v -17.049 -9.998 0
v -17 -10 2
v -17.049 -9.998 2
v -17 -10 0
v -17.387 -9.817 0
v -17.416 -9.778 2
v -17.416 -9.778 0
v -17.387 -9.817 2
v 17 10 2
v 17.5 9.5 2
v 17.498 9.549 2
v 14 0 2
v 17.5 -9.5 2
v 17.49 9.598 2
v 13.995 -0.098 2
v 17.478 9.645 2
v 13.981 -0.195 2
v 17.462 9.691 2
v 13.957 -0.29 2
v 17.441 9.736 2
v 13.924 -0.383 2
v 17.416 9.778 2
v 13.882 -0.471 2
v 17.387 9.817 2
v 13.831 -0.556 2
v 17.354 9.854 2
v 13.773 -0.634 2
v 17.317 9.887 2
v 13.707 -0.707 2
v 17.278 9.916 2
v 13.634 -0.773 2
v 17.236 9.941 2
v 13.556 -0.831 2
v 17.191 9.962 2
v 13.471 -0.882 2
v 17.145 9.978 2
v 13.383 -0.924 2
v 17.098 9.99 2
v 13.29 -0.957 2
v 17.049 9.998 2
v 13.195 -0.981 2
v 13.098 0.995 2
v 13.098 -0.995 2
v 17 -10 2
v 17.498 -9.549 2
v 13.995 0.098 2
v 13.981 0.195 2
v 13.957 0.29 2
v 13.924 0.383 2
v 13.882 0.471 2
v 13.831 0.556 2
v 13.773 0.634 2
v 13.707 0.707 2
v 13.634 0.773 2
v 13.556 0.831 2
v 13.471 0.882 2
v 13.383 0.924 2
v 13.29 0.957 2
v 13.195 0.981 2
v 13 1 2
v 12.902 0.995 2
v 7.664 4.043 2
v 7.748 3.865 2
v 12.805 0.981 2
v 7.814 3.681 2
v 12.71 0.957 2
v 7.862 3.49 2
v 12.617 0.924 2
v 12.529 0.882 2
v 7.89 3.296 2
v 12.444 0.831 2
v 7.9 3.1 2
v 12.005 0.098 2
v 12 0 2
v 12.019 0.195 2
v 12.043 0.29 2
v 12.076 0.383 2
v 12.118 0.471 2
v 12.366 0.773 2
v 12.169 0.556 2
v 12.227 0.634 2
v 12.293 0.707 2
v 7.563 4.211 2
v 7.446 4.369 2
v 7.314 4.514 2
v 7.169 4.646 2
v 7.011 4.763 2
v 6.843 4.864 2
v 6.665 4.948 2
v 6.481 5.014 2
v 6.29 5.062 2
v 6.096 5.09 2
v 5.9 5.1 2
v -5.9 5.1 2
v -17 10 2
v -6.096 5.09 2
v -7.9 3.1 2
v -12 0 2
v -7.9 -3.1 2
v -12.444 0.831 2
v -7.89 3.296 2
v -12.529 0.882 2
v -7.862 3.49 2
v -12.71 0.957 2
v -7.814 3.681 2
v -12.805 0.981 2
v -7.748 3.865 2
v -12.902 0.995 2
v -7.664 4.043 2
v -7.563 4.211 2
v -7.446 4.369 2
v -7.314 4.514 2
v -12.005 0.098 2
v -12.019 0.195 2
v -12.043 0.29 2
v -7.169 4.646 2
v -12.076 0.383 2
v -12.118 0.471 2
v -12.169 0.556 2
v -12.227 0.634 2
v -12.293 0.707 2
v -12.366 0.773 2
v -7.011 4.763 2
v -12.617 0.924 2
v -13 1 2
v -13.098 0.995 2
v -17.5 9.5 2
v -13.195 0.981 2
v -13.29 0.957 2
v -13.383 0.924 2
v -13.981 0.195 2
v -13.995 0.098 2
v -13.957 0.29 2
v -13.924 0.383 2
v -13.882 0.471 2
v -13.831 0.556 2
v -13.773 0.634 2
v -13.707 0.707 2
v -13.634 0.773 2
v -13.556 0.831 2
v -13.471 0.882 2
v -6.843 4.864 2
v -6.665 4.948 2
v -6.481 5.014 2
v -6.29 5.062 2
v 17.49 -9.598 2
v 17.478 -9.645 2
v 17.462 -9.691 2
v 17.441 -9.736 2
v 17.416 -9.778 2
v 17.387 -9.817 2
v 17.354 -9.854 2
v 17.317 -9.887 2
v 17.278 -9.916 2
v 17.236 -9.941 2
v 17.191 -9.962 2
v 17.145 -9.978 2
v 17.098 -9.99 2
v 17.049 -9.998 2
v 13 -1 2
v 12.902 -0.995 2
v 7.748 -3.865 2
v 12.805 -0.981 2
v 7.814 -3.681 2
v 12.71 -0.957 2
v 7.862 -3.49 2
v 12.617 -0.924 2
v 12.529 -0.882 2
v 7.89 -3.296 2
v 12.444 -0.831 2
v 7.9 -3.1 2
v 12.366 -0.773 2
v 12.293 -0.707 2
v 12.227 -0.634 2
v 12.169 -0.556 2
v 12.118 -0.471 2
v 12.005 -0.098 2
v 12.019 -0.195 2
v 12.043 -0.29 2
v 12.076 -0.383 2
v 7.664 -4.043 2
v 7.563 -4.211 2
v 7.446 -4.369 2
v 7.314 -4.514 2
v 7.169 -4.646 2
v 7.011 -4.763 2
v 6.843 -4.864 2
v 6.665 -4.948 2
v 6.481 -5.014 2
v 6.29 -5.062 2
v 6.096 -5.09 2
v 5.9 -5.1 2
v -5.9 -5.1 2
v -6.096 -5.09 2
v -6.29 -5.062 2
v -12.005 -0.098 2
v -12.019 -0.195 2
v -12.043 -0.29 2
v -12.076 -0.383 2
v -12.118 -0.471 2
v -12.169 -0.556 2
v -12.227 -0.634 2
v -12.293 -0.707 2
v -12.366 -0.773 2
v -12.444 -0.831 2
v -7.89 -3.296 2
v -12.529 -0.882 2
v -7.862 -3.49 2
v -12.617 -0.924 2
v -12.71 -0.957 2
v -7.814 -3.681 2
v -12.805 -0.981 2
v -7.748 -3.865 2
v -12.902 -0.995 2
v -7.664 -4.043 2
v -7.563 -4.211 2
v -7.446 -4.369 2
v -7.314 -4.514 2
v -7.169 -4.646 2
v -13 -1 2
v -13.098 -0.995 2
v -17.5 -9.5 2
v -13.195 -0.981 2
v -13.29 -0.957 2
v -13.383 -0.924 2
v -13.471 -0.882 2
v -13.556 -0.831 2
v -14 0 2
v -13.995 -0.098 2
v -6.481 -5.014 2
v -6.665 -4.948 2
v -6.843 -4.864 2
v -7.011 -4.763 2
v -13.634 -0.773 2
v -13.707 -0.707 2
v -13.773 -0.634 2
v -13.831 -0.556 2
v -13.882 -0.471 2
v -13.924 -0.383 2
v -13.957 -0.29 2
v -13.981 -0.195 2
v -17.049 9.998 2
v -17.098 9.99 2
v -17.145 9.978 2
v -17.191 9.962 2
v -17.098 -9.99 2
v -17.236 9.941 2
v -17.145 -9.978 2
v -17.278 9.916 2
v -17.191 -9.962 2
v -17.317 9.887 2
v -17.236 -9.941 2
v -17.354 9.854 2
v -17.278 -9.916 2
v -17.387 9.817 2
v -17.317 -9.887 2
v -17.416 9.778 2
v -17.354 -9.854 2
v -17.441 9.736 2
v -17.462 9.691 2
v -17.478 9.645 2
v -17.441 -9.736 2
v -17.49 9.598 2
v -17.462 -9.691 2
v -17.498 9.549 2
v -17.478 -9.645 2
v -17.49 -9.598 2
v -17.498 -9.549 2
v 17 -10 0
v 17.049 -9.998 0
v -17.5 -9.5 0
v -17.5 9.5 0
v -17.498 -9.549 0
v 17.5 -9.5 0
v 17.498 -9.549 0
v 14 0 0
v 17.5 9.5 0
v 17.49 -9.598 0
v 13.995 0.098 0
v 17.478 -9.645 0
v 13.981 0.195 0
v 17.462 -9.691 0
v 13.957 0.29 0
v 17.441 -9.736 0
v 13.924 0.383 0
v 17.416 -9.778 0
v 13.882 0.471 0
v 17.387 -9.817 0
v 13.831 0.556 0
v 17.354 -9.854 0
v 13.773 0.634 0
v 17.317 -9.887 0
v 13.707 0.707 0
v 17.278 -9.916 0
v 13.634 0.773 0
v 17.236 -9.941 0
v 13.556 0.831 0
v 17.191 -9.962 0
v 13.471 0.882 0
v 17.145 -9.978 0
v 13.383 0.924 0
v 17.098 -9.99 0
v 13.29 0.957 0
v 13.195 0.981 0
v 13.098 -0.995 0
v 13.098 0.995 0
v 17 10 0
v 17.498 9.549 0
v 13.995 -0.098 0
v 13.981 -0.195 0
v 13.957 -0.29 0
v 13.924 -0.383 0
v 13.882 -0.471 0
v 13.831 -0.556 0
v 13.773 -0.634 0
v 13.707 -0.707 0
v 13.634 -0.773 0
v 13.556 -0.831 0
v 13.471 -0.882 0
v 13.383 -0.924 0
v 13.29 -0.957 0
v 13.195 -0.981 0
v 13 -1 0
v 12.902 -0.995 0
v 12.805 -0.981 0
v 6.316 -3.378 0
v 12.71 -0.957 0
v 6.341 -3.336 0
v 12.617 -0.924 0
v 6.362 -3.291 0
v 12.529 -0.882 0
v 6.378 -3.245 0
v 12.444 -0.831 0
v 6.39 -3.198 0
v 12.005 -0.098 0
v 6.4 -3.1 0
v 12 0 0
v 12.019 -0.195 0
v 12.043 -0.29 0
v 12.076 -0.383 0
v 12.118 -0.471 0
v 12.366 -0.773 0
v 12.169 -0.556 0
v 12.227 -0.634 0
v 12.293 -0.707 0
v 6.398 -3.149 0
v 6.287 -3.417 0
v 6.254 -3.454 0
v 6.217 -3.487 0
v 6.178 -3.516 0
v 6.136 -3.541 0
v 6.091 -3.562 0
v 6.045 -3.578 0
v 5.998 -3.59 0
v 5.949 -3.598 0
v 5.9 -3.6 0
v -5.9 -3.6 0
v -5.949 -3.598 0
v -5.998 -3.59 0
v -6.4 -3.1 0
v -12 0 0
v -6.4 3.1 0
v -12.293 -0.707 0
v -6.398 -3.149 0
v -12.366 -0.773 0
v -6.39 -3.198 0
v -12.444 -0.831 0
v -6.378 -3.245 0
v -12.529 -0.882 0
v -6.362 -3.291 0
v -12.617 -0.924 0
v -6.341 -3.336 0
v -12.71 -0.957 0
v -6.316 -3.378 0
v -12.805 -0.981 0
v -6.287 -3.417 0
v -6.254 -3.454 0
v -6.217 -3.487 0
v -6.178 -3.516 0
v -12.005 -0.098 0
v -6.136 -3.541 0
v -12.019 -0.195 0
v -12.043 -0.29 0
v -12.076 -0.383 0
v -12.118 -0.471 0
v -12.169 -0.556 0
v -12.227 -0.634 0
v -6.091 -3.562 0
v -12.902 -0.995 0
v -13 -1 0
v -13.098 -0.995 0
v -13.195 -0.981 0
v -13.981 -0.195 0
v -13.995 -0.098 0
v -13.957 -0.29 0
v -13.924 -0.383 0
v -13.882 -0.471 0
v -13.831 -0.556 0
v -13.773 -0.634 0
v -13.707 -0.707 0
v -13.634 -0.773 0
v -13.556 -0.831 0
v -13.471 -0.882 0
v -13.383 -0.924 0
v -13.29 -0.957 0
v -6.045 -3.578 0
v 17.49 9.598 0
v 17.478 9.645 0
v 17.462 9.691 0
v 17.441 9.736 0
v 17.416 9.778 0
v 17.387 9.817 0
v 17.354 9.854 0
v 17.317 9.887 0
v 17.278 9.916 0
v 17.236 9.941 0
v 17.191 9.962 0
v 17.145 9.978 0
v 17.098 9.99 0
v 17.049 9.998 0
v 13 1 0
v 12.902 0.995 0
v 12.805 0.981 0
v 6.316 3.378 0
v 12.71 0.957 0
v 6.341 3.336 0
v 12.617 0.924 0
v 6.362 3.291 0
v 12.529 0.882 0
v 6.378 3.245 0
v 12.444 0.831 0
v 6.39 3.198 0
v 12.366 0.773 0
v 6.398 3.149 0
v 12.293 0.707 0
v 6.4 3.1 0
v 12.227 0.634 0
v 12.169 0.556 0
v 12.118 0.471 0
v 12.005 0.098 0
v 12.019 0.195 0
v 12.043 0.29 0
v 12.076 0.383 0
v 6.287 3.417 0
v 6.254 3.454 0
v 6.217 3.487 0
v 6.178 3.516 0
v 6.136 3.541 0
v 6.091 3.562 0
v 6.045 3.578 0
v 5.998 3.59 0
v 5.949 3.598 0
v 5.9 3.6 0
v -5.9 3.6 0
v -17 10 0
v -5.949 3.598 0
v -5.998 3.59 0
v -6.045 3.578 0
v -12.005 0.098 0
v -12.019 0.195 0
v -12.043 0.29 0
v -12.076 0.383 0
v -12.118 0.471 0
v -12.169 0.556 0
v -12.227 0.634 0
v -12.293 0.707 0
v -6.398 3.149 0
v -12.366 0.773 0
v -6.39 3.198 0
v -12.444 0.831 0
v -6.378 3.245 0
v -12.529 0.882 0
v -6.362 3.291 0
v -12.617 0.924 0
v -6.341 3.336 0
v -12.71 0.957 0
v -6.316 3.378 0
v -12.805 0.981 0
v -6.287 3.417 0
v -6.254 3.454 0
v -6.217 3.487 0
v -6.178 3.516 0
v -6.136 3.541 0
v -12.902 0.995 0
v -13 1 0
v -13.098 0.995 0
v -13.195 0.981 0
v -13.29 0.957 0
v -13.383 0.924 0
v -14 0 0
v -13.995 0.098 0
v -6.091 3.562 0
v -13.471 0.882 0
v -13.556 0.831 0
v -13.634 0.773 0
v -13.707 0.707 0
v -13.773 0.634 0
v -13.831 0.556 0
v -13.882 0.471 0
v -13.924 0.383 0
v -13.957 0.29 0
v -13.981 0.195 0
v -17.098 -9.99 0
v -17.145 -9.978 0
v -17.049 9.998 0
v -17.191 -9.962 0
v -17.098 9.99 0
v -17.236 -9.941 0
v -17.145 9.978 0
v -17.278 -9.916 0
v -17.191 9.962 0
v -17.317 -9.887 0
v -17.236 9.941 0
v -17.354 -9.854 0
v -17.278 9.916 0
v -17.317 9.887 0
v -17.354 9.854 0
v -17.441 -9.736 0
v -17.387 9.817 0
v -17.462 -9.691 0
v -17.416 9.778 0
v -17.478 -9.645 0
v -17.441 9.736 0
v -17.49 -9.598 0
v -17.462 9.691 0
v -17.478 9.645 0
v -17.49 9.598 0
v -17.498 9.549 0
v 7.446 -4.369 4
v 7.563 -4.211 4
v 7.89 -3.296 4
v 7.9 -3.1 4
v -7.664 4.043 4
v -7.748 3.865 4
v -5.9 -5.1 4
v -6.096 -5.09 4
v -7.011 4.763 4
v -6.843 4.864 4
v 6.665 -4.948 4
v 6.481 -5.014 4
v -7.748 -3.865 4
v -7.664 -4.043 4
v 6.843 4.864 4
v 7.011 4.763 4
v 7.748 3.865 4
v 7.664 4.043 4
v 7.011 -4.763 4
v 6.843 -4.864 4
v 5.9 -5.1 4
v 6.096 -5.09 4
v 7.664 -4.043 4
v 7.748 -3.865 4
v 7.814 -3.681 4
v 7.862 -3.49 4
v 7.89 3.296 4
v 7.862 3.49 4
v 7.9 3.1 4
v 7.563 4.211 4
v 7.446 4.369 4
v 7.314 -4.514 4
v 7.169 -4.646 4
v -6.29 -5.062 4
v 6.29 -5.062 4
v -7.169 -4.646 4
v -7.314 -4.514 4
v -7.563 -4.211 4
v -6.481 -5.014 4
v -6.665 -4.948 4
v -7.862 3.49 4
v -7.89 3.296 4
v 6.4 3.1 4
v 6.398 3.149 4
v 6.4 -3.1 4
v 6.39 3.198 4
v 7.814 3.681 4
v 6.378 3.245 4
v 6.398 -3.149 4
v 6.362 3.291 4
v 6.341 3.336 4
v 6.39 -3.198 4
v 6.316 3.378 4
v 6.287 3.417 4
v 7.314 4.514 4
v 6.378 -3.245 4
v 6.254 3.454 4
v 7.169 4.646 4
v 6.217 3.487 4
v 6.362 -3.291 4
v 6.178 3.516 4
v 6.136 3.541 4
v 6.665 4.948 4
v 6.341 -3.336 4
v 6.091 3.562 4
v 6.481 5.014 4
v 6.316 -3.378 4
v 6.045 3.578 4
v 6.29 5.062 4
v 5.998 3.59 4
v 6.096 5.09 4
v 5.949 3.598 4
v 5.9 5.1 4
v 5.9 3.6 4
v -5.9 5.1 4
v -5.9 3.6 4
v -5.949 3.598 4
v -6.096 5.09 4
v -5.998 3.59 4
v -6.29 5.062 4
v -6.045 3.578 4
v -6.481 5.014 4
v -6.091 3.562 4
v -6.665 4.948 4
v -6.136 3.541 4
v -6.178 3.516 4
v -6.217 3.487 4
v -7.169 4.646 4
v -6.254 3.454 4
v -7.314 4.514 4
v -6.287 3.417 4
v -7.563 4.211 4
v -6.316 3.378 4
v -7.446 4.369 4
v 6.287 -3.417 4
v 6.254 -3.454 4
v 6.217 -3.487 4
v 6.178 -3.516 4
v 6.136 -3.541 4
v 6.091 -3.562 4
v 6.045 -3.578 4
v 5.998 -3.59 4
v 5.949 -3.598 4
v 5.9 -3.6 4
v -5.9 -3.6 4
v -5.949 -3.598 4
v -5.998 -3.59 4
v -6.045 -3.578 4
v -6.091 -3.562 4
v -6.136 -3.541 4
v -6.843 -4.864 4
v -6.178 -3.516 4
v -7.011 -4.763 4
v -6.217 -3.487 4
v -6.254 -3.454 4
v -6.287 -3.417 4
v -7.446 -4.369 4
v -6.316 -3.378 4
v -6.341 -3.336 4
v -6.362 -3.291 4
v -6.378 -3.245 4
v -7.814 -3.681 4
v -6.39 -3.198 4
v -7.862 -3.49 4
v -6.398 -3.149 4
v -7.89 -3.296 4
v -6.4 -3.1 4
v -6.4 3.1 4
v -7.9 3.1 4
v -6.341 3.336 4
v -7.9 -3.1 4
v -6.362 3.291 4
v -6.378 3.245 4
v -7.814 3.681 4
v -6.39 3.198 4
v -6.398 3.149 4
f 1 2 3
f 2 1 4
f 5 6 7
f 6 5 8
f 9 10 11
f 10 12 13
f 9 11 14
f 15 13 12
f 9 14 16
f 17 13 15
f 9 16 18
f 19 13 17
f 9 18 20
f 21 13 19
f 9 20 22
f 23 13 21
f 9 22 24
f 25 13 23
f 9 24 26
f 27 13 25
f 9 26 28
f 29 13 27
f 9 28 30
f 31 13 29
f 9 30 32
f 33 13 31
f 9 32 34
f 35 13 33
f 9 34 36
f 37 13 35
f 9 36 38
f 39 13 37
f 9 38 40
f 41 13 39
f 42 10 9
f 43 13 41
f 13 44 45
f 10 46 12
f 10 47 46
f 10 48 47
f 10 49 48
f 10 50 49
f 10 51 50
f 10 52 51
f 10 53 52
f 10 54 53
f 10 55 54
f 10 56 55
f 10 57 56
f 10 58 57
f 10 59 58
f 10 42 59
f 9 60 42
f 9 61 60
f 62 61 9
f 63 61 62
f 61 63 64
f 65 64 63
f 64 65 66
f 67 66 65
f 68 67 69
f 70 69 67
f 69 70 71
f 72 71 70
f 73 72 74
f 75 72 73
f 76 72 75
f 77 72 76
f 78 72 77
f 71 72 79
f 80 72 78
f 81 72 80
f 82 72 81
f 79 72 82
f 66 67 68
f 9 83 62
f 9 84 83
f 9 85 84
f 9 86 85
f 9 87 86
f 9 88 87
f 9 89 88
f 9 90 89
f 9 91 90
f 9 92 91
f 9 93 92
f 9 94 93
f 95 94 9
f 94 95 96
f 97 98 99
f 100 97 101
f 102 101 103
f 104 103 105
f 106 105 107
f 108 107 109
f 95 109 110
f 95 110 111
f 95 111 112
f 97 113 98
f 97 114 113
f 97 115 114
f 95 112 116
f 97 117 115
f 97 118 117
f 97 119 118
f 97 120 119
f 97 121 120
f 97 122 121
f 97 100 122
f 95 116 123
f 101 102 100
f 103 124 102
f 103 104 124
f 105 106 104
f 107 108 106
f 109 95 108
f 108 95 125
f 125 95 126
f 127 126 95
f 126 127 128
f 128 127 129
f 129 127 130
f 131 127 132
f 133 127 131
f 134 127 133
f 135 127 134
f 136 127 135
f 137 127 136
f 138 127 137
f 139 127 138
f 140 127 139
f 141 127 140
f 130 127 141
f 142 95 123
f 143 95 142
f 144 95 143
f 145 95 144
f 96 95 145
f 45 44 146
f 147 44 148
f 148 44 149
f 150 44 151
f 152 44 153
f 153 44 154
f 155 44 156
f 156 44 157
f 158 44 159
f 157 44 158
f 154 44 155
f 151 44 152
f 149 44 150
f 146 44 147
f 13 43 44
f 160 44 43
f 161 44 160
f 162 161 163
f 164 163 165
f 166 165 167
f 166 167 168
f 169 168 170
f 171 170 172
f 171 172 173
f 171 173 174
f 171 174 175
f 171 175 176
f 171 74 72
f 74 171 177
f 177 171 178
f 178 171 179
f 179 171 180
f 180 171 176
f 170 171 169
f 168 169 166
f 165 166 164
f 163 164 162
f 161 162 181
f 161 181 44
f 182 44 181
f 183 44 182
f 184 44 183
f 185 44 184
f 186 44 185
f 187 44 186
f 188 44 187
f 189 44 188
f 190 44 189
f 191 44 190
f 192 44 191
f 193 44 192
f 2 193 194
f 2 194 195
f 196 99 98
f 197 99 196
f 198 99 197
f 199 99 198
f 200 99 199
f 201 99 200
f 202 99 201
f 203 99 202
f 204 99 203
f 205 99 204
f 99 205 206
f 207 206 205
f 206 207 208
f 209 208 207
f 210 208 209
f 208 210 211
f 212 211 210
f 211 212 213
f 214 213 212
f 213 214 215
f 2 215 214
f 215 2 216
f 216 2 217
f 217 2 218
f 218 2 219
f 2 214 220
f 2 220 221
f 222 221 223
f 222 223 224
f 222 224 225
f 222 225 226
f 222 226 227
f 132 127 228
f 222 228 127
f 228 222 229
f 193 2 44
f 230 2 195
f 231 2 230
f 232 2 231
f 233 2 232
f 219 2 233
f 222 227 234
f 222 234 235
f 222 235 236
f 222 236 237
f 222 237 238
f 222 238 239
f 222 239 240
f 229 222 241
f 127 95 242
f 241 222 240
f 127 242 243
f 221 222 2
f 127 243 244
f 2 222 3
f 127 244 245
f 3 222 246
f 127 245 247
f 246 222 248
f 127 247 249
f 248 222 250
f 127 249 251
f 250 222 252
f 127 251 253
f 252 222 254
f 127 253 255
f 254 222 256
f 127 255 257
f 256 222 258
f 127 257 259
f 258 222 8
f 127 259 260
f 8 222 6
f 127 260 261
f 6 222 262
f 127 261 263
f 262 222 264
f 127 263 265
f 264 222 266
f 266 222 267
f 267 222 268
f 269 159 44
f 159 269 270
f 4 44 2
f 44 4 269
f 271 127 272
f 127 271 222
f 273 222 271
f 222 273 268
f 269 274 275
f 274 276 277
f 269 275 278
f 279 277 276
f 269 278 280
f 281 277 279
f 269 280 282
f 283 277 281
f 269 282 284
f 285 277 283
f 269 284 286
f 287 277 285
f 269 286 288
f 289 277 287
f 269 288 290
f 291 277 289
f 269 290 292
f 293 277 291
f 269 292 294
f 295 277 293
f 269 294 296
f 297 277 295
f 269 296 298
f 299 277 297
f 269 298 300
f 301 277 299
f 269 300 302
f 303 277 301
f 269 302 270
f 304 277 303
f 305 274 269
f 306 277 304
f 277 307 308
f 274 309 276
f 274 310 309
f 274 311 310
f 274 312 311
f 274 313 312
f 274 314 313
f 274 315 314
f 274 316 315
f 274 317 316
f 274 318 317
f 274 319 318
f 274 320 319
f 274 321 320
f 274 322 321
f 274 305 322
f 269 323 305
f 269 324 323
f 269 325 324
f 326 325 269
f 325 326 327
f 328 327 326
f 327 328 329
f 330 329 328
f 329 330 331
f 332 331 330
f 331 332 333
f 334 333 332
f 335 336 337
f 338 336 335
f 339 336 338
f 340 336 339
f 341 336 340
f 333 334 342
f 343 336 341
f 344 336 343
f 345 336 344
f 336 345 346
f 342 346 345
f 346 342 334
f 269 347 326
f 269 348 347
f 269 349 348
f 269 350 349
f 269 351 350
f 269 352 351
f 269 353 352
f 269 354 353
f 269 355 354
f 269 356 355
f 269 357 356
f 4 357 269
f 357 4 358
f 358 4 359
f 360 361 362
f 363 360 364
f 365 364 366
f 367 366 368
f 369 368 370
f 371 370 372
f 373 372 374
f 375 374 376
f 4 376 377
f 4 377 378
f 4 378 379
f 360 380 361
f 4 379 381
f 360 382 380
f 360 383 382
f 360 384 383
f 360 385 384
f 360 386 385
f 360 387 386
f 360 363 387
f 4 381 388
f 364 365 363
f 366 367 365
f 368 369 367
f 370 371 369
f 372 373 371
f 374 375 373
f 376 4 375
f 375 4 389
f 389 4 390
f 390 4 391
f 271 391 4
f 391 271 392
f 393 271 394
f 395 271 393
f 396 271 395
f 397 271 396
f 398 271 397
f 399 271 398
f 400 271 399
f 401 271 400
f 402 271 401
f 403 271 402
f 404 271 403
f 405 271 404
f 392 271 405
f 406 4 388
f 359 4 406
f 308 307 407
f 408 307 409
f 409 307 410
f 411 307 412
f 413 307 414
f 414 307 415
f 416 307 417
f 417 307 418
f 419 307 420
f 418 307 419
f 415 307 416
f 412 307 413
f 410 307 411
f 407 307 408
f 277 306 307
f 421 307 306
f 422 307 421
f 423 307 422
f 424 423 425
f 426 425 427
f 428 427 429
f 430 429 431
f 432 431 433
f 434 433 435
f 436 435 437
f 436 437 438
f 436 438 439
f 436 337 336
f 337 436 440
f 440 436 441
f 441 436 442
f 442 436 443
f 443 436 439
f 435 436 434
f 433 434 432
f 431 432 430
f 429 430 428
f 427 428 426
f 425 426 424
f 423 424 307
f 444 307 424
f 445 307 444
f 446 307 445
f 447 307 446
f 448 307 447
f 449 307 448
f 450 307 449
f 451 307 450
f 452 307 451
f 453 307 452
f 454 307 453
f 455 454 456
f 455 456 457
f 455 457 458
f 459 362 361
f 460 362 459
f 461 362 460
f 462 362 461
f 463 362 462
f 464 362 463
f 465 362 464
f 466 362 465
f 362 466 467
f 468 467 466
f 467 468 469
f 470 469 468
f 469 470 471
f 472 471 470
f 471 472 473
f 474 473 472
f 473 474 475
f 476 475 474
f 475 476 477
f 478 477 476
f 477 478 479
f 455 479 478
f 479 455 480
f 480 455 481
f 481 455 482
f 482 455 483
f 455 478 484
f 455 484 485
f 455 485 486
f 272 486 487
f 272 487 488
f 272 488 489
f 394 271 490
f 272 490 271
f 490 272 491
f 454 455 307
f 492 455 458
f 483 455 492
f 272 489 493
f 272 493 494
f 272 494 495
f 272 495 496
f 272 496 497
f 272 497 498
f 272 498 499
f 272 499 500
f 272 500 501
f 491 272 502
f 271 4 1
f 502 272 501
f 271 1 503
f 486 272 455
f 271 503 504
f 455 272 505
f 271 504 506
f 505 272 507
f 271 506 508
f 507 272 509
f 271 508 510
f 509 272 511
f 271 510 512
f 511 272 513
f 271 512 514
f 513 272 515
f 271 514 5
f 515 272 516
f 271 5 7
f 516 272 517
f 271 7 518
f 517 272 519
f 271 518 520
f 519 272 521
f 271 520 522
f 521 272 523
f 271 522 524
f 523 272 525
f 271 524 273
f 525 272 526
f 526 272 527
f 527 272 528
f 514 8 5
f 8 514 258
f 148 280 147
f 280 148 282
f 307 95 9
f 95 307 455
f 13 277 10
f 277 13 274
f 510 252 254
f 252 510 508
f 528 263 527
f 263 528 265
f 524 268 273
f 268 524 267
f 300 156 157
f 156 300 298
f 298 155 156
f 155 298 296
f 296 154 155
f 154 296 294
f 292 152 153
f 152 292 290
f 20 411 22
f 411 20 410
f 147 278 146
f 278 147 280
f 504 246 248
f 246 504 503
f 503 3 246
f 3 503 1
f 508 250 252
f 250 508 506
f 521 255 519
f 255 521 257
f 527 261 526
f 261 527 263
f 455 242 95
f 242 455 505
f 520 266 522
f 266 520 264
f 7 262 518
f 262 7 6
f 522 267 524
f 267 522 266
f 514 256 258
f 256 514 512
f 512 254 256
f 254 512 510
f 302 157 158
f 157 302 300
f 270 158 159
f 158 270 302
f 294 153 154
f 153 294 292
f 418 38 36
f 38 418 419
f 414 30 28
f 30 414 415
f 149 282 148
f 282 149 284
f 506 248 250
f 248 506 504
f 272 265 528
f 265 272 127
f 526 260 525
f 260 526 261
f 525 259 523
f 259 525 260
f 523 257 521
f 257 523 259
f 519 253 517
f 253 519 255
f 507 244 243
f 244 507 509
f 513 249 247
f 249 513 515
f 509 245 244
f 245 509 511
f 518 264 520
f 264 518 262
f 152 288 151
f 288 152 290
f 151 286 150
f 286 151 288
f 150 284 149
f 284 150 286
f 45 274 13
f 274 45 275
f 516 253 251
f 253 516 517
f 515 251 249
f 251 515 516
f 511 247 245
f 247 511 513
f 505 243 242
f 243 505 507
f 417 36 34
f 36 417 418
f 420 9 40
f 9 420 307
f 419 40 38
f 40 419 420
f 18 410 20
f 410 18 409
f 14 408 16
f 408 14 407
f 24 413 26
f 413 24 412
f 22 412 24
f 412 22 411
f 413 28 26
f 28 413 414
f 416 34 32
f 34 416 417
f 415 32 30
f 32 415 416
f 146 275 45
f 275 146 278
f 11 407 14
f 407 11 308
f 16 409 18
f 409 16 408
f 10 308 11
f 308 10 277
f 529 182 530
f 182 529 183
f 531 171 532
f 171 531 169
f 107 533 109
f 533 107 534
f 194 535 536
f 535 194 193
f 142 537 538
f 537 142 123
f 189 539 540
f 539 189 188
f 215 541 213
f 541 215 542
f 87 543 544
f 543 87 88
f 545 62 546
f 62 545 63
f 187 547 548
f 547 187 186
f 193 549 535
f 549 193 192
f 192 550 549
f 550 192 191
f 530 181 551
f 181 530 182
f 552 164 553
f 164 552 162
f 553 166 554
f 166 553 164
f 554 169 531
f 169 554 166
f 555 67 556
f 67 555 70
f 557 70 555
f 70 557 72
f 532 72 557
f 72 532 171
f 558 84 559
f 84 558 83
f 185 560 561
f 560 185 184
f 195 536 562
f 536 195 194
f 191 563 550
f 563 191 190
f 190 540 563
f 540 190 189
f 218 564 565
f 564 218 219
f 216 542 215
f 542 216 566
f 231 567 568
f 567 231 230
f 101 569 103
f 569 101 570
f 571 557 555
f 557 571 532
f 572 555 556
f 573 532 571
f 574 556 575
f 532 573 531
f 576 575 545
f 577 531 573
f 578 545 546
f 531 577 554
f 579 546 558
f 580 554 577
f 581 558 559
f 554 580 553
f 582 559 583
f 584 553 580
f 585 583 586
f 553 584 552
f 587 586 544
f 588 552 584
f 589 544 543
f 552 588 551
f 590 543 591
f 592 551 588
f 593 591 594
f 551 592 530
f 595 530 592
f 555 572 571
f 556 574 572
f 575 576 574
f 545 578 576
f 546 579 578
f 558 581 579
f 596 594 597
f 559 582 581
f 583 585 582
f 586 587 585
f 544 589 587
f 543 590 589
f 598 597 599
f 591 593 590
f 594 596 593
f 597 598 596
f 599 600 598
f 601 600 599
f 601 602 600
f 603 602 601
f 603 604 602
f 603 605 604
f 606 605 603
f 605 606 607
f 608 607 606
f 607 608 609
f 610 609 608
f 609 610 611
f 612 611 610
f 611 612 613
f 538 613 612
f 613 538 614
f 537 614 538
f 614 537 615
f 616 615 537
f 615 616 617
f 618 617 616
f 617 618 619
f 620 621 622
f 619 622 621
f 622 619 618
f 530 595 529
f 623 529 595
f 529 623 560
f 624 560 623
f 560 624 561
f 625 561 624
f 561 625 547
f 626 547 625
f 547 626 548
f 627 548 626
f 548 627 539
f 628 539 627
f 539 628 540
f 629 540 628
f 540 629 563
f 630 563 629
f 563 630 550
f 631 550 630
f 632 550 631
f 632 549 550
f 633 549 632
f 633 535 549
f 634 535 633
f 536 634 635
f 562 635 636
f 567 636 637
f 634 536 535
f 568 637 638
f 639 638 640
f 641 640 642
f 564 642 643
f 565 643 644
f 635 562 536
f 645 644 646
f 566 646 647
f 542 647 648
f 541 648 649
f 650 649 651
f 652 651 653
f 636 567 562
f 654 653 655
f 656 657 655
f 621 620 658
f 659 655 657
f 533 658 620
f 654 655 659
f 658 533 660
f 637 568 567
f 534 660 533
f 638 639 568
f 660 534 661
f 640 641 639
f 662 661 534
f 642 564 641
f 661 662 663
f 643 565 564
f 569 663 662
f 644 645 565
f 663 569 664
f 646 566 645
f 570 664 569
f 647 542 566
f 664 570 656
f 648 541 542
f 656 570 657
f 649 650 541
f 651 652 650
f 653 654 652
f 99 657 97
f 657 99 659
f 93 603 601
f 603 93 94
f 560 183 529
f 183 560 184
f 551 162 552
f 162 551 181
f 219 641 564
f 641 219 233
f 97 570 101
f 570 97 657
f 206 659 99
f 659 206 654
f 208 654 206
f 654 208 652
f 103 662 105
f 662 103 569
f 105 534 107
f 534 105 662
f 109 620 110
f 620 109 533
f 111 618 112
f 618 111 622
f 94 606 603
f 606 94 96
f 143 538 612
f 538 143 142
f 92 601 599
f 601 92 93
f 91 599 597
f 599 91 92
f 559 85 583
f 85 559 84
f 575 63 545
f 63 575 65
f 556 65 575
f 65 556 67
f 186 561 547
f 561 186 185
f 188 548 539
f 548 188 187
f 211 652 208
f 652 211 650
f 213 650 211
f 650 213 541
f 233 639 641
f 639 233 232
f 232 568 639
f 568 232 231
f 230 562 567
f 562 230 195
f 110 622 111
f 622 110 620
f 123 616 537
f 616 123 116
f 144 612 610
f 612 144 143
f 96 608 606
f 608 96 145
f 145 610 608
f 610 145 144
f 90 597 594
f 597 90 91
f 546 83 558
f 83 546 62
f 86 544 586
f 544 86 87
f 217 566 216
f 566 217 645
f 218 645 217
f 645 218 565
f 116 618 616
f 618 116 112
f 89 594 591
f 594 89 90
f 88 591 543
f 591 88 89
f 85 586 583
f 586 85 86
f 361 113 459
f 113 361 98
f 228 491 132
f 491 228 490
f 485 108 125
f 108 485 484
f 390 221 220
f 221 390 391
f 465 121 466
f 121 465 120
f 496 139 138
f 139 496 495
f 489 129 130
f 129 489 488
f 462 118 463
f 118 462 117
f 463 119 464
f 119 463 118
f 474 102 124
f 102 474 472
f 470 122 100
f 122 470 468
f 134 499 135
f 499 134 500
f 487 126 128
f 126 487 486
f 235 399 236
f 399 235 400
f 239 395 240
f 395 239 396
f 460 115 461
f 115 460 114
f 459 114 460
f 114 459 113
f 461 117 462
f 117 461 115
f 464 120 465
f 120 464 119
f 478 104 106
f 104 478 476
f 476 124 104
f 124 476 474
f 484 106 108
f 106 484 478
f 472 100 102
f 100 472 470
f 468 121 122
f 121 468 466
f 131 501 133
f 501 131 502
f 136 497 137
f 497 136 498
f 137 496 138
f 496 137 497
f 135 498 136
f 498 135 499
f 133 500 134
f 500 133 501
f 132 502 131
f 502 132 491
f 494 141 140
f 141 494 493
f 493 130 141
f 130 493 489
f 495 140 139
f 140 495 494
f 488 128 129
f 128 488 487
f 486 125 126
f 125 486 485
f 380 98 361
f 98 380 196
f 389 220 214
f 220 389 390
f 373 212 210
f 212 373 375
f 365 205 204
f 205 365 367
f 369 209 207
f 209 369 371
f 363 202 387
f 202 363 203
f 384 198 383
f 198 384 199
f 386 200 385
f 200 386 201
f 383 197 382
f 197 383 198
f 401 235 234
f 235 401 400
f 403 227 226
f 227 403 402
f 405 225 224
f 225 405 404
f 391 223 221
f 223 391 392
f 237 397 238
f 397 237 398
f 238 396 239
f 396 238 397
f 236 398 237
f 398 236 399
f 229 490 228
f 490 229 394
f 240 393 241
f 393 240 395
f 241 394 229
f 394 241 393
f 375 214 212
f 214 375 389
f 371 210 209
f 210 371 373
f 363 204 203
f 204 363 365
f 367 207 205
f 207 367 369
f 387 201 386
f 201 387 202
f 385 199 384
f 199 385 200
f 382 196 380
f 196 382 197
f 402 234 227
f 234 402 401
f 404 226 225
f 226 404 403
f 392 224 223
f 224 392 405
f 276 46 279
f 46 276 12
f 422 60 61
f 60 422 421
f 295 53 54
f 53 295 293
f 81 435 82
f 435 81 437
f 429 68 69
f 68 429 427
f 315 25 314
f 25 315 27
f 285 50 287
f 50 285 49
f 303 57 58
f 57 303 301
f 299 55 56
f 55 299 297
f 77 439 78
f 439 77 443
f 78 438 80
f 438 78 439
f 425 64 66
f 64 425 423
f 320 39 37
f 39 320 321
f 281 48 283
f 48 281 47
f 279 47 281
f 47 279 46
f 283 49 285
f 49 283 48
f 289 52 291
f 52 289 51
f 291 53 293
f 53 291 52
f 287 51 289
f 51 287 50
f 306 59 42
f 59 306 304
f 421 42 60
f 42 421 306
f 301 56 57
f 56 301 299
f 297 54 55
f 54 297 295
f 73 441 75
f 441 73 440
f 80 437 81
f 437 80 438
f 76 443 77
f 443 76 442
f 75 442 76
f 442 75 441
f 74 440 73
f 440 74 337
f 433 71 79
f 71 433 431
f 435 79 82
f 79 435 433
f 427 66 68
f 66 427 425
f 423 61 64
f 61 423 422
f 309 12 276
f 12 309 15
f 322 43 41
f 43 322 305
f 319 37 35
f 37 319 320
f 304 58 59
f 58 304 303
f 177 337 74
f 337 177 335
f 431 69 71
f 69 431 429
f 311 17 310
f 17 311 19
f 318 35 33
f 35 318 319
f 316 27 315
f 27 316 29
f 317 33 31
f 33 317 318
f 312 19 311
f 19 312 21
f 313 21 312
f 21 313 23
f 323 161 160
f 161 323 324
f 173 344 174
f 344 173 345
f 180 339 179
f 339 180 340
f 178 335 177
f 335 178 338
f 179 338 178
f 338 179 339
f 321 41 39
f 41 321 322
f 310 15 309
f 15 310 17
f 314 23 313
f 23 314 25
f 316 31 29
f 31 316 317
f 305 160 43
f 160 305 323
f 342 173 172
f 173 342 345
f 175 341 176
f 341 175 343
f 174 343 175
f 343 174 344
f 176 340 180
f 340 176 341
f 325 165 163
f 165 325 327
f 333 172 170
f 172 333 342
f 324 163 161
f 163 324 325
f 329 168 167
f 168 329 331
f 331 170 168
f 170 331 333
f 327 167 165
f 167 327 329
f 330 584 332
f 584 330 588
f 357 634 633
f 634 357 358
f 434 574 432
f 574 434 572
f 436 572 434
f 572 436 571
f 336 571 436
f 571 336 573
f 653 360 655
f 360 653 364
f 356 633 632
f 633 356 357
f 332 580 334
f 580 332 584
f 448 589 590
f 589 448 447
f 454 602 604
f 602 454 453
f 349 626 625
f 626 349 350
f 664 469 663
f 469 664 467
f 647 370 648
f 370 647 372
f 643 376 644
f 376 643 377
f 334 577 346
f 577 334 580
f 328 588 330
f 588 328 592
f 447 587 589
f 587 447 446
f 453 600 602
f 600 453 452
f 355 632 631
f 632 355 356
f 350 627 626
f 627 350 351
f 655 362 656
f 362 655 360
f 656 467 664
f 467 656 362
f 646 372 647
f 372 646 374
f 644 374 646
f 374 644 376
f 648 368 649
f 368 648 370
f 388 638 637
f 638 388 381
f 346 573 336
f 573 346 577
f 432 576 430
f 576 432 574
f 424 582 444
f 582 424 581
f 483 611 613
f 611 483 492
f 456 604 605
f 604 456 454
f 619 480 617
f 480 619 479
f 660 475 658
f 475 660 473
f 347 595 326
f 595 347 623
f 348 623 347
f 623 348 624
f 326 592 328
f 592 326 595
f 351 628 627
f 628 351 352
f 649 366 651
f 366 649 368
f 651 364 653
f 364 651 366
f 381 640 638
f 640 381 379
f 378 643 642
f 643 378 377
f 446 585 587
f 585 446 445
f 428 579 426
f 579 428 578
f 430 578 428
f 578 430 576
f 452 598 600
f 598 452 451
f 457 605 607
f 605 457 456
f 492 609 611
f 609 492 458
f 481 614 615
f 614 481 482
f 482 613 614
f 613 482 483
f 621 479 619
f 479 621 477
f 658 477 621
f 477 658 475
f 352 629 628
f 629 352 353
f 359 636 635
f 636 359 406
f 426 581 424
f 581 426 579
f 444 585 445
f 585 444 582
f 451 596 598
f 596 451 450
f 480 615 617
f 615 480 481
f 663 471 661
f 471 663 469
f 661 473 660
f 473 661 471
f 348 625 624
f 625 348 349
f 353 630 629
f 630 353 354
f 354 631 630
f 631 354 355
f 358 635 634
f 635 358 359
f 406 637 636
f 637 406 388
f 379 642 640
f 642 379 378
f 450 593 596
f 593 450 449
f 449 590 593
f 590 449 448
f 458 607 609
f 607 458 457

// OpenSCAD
// USB-C cover plaque
$fn = 64;

// Plaque
plate_l = 35;
plate_w = 20;
plate_t = 2;
plate_r = 0.5;                      // corner radius of the plaque (matches the opening)

// USB-C opening (plug 12.3 x 6.7 mm + clearance)
plug_l    = 12.3;
plug_w    = 6.7;
clearance = 0.25;                   // per side
hole_l    = plug_l + 2*clearance;   // 12.8
hole_w    = plug_w + 2*clearance;   // 7.2
hole_r    = 0.5;                    // corner radius of the opening

// Ridge around the opening
ridge_h = 2;
ridge_t = 1.5;                      // wall thickness of the ridge
ridge_r = hole_r + ridge_t;         // outer radius, concentric with the opening

// Screw holes
screw_d      = 2;
screw_offset = 13;                  // distance from center along the long axis

// Centered rounded rectangle, extruded from z=0 to z=h
module rrect(l, w, r, h) {
    hull()
        for (x = [-1, 1], y = [-1, 1])
            translate([x*(l/2 - r), y*(w/2 - r), 0])
                cylinder(r = r, h = h);
}

difference() {
    union() {
        // Base plate
        rrect(plate_l, plate_w, plate_r, plate_t);

        // Ridge (rises 2 mm above the plate)
        translate([0, 0, plate_t])
            rrect(hole_l + 2*ridge_t, hole_w + 2*ridge_t, ridge_r, ridge_h);
    }

    // USB-C opening, through plate and ridge
    translate([0, 0, -1])
        rrect(hole_l, hole_w, hole_r, plate_t + ridge_h + 2);

    // Screw holes
    for (x = [-screw_offset, screw_offset])
        translate([x, 0, -1])
            cylinder(d = screw_d, h = plate_t + 2);
}
